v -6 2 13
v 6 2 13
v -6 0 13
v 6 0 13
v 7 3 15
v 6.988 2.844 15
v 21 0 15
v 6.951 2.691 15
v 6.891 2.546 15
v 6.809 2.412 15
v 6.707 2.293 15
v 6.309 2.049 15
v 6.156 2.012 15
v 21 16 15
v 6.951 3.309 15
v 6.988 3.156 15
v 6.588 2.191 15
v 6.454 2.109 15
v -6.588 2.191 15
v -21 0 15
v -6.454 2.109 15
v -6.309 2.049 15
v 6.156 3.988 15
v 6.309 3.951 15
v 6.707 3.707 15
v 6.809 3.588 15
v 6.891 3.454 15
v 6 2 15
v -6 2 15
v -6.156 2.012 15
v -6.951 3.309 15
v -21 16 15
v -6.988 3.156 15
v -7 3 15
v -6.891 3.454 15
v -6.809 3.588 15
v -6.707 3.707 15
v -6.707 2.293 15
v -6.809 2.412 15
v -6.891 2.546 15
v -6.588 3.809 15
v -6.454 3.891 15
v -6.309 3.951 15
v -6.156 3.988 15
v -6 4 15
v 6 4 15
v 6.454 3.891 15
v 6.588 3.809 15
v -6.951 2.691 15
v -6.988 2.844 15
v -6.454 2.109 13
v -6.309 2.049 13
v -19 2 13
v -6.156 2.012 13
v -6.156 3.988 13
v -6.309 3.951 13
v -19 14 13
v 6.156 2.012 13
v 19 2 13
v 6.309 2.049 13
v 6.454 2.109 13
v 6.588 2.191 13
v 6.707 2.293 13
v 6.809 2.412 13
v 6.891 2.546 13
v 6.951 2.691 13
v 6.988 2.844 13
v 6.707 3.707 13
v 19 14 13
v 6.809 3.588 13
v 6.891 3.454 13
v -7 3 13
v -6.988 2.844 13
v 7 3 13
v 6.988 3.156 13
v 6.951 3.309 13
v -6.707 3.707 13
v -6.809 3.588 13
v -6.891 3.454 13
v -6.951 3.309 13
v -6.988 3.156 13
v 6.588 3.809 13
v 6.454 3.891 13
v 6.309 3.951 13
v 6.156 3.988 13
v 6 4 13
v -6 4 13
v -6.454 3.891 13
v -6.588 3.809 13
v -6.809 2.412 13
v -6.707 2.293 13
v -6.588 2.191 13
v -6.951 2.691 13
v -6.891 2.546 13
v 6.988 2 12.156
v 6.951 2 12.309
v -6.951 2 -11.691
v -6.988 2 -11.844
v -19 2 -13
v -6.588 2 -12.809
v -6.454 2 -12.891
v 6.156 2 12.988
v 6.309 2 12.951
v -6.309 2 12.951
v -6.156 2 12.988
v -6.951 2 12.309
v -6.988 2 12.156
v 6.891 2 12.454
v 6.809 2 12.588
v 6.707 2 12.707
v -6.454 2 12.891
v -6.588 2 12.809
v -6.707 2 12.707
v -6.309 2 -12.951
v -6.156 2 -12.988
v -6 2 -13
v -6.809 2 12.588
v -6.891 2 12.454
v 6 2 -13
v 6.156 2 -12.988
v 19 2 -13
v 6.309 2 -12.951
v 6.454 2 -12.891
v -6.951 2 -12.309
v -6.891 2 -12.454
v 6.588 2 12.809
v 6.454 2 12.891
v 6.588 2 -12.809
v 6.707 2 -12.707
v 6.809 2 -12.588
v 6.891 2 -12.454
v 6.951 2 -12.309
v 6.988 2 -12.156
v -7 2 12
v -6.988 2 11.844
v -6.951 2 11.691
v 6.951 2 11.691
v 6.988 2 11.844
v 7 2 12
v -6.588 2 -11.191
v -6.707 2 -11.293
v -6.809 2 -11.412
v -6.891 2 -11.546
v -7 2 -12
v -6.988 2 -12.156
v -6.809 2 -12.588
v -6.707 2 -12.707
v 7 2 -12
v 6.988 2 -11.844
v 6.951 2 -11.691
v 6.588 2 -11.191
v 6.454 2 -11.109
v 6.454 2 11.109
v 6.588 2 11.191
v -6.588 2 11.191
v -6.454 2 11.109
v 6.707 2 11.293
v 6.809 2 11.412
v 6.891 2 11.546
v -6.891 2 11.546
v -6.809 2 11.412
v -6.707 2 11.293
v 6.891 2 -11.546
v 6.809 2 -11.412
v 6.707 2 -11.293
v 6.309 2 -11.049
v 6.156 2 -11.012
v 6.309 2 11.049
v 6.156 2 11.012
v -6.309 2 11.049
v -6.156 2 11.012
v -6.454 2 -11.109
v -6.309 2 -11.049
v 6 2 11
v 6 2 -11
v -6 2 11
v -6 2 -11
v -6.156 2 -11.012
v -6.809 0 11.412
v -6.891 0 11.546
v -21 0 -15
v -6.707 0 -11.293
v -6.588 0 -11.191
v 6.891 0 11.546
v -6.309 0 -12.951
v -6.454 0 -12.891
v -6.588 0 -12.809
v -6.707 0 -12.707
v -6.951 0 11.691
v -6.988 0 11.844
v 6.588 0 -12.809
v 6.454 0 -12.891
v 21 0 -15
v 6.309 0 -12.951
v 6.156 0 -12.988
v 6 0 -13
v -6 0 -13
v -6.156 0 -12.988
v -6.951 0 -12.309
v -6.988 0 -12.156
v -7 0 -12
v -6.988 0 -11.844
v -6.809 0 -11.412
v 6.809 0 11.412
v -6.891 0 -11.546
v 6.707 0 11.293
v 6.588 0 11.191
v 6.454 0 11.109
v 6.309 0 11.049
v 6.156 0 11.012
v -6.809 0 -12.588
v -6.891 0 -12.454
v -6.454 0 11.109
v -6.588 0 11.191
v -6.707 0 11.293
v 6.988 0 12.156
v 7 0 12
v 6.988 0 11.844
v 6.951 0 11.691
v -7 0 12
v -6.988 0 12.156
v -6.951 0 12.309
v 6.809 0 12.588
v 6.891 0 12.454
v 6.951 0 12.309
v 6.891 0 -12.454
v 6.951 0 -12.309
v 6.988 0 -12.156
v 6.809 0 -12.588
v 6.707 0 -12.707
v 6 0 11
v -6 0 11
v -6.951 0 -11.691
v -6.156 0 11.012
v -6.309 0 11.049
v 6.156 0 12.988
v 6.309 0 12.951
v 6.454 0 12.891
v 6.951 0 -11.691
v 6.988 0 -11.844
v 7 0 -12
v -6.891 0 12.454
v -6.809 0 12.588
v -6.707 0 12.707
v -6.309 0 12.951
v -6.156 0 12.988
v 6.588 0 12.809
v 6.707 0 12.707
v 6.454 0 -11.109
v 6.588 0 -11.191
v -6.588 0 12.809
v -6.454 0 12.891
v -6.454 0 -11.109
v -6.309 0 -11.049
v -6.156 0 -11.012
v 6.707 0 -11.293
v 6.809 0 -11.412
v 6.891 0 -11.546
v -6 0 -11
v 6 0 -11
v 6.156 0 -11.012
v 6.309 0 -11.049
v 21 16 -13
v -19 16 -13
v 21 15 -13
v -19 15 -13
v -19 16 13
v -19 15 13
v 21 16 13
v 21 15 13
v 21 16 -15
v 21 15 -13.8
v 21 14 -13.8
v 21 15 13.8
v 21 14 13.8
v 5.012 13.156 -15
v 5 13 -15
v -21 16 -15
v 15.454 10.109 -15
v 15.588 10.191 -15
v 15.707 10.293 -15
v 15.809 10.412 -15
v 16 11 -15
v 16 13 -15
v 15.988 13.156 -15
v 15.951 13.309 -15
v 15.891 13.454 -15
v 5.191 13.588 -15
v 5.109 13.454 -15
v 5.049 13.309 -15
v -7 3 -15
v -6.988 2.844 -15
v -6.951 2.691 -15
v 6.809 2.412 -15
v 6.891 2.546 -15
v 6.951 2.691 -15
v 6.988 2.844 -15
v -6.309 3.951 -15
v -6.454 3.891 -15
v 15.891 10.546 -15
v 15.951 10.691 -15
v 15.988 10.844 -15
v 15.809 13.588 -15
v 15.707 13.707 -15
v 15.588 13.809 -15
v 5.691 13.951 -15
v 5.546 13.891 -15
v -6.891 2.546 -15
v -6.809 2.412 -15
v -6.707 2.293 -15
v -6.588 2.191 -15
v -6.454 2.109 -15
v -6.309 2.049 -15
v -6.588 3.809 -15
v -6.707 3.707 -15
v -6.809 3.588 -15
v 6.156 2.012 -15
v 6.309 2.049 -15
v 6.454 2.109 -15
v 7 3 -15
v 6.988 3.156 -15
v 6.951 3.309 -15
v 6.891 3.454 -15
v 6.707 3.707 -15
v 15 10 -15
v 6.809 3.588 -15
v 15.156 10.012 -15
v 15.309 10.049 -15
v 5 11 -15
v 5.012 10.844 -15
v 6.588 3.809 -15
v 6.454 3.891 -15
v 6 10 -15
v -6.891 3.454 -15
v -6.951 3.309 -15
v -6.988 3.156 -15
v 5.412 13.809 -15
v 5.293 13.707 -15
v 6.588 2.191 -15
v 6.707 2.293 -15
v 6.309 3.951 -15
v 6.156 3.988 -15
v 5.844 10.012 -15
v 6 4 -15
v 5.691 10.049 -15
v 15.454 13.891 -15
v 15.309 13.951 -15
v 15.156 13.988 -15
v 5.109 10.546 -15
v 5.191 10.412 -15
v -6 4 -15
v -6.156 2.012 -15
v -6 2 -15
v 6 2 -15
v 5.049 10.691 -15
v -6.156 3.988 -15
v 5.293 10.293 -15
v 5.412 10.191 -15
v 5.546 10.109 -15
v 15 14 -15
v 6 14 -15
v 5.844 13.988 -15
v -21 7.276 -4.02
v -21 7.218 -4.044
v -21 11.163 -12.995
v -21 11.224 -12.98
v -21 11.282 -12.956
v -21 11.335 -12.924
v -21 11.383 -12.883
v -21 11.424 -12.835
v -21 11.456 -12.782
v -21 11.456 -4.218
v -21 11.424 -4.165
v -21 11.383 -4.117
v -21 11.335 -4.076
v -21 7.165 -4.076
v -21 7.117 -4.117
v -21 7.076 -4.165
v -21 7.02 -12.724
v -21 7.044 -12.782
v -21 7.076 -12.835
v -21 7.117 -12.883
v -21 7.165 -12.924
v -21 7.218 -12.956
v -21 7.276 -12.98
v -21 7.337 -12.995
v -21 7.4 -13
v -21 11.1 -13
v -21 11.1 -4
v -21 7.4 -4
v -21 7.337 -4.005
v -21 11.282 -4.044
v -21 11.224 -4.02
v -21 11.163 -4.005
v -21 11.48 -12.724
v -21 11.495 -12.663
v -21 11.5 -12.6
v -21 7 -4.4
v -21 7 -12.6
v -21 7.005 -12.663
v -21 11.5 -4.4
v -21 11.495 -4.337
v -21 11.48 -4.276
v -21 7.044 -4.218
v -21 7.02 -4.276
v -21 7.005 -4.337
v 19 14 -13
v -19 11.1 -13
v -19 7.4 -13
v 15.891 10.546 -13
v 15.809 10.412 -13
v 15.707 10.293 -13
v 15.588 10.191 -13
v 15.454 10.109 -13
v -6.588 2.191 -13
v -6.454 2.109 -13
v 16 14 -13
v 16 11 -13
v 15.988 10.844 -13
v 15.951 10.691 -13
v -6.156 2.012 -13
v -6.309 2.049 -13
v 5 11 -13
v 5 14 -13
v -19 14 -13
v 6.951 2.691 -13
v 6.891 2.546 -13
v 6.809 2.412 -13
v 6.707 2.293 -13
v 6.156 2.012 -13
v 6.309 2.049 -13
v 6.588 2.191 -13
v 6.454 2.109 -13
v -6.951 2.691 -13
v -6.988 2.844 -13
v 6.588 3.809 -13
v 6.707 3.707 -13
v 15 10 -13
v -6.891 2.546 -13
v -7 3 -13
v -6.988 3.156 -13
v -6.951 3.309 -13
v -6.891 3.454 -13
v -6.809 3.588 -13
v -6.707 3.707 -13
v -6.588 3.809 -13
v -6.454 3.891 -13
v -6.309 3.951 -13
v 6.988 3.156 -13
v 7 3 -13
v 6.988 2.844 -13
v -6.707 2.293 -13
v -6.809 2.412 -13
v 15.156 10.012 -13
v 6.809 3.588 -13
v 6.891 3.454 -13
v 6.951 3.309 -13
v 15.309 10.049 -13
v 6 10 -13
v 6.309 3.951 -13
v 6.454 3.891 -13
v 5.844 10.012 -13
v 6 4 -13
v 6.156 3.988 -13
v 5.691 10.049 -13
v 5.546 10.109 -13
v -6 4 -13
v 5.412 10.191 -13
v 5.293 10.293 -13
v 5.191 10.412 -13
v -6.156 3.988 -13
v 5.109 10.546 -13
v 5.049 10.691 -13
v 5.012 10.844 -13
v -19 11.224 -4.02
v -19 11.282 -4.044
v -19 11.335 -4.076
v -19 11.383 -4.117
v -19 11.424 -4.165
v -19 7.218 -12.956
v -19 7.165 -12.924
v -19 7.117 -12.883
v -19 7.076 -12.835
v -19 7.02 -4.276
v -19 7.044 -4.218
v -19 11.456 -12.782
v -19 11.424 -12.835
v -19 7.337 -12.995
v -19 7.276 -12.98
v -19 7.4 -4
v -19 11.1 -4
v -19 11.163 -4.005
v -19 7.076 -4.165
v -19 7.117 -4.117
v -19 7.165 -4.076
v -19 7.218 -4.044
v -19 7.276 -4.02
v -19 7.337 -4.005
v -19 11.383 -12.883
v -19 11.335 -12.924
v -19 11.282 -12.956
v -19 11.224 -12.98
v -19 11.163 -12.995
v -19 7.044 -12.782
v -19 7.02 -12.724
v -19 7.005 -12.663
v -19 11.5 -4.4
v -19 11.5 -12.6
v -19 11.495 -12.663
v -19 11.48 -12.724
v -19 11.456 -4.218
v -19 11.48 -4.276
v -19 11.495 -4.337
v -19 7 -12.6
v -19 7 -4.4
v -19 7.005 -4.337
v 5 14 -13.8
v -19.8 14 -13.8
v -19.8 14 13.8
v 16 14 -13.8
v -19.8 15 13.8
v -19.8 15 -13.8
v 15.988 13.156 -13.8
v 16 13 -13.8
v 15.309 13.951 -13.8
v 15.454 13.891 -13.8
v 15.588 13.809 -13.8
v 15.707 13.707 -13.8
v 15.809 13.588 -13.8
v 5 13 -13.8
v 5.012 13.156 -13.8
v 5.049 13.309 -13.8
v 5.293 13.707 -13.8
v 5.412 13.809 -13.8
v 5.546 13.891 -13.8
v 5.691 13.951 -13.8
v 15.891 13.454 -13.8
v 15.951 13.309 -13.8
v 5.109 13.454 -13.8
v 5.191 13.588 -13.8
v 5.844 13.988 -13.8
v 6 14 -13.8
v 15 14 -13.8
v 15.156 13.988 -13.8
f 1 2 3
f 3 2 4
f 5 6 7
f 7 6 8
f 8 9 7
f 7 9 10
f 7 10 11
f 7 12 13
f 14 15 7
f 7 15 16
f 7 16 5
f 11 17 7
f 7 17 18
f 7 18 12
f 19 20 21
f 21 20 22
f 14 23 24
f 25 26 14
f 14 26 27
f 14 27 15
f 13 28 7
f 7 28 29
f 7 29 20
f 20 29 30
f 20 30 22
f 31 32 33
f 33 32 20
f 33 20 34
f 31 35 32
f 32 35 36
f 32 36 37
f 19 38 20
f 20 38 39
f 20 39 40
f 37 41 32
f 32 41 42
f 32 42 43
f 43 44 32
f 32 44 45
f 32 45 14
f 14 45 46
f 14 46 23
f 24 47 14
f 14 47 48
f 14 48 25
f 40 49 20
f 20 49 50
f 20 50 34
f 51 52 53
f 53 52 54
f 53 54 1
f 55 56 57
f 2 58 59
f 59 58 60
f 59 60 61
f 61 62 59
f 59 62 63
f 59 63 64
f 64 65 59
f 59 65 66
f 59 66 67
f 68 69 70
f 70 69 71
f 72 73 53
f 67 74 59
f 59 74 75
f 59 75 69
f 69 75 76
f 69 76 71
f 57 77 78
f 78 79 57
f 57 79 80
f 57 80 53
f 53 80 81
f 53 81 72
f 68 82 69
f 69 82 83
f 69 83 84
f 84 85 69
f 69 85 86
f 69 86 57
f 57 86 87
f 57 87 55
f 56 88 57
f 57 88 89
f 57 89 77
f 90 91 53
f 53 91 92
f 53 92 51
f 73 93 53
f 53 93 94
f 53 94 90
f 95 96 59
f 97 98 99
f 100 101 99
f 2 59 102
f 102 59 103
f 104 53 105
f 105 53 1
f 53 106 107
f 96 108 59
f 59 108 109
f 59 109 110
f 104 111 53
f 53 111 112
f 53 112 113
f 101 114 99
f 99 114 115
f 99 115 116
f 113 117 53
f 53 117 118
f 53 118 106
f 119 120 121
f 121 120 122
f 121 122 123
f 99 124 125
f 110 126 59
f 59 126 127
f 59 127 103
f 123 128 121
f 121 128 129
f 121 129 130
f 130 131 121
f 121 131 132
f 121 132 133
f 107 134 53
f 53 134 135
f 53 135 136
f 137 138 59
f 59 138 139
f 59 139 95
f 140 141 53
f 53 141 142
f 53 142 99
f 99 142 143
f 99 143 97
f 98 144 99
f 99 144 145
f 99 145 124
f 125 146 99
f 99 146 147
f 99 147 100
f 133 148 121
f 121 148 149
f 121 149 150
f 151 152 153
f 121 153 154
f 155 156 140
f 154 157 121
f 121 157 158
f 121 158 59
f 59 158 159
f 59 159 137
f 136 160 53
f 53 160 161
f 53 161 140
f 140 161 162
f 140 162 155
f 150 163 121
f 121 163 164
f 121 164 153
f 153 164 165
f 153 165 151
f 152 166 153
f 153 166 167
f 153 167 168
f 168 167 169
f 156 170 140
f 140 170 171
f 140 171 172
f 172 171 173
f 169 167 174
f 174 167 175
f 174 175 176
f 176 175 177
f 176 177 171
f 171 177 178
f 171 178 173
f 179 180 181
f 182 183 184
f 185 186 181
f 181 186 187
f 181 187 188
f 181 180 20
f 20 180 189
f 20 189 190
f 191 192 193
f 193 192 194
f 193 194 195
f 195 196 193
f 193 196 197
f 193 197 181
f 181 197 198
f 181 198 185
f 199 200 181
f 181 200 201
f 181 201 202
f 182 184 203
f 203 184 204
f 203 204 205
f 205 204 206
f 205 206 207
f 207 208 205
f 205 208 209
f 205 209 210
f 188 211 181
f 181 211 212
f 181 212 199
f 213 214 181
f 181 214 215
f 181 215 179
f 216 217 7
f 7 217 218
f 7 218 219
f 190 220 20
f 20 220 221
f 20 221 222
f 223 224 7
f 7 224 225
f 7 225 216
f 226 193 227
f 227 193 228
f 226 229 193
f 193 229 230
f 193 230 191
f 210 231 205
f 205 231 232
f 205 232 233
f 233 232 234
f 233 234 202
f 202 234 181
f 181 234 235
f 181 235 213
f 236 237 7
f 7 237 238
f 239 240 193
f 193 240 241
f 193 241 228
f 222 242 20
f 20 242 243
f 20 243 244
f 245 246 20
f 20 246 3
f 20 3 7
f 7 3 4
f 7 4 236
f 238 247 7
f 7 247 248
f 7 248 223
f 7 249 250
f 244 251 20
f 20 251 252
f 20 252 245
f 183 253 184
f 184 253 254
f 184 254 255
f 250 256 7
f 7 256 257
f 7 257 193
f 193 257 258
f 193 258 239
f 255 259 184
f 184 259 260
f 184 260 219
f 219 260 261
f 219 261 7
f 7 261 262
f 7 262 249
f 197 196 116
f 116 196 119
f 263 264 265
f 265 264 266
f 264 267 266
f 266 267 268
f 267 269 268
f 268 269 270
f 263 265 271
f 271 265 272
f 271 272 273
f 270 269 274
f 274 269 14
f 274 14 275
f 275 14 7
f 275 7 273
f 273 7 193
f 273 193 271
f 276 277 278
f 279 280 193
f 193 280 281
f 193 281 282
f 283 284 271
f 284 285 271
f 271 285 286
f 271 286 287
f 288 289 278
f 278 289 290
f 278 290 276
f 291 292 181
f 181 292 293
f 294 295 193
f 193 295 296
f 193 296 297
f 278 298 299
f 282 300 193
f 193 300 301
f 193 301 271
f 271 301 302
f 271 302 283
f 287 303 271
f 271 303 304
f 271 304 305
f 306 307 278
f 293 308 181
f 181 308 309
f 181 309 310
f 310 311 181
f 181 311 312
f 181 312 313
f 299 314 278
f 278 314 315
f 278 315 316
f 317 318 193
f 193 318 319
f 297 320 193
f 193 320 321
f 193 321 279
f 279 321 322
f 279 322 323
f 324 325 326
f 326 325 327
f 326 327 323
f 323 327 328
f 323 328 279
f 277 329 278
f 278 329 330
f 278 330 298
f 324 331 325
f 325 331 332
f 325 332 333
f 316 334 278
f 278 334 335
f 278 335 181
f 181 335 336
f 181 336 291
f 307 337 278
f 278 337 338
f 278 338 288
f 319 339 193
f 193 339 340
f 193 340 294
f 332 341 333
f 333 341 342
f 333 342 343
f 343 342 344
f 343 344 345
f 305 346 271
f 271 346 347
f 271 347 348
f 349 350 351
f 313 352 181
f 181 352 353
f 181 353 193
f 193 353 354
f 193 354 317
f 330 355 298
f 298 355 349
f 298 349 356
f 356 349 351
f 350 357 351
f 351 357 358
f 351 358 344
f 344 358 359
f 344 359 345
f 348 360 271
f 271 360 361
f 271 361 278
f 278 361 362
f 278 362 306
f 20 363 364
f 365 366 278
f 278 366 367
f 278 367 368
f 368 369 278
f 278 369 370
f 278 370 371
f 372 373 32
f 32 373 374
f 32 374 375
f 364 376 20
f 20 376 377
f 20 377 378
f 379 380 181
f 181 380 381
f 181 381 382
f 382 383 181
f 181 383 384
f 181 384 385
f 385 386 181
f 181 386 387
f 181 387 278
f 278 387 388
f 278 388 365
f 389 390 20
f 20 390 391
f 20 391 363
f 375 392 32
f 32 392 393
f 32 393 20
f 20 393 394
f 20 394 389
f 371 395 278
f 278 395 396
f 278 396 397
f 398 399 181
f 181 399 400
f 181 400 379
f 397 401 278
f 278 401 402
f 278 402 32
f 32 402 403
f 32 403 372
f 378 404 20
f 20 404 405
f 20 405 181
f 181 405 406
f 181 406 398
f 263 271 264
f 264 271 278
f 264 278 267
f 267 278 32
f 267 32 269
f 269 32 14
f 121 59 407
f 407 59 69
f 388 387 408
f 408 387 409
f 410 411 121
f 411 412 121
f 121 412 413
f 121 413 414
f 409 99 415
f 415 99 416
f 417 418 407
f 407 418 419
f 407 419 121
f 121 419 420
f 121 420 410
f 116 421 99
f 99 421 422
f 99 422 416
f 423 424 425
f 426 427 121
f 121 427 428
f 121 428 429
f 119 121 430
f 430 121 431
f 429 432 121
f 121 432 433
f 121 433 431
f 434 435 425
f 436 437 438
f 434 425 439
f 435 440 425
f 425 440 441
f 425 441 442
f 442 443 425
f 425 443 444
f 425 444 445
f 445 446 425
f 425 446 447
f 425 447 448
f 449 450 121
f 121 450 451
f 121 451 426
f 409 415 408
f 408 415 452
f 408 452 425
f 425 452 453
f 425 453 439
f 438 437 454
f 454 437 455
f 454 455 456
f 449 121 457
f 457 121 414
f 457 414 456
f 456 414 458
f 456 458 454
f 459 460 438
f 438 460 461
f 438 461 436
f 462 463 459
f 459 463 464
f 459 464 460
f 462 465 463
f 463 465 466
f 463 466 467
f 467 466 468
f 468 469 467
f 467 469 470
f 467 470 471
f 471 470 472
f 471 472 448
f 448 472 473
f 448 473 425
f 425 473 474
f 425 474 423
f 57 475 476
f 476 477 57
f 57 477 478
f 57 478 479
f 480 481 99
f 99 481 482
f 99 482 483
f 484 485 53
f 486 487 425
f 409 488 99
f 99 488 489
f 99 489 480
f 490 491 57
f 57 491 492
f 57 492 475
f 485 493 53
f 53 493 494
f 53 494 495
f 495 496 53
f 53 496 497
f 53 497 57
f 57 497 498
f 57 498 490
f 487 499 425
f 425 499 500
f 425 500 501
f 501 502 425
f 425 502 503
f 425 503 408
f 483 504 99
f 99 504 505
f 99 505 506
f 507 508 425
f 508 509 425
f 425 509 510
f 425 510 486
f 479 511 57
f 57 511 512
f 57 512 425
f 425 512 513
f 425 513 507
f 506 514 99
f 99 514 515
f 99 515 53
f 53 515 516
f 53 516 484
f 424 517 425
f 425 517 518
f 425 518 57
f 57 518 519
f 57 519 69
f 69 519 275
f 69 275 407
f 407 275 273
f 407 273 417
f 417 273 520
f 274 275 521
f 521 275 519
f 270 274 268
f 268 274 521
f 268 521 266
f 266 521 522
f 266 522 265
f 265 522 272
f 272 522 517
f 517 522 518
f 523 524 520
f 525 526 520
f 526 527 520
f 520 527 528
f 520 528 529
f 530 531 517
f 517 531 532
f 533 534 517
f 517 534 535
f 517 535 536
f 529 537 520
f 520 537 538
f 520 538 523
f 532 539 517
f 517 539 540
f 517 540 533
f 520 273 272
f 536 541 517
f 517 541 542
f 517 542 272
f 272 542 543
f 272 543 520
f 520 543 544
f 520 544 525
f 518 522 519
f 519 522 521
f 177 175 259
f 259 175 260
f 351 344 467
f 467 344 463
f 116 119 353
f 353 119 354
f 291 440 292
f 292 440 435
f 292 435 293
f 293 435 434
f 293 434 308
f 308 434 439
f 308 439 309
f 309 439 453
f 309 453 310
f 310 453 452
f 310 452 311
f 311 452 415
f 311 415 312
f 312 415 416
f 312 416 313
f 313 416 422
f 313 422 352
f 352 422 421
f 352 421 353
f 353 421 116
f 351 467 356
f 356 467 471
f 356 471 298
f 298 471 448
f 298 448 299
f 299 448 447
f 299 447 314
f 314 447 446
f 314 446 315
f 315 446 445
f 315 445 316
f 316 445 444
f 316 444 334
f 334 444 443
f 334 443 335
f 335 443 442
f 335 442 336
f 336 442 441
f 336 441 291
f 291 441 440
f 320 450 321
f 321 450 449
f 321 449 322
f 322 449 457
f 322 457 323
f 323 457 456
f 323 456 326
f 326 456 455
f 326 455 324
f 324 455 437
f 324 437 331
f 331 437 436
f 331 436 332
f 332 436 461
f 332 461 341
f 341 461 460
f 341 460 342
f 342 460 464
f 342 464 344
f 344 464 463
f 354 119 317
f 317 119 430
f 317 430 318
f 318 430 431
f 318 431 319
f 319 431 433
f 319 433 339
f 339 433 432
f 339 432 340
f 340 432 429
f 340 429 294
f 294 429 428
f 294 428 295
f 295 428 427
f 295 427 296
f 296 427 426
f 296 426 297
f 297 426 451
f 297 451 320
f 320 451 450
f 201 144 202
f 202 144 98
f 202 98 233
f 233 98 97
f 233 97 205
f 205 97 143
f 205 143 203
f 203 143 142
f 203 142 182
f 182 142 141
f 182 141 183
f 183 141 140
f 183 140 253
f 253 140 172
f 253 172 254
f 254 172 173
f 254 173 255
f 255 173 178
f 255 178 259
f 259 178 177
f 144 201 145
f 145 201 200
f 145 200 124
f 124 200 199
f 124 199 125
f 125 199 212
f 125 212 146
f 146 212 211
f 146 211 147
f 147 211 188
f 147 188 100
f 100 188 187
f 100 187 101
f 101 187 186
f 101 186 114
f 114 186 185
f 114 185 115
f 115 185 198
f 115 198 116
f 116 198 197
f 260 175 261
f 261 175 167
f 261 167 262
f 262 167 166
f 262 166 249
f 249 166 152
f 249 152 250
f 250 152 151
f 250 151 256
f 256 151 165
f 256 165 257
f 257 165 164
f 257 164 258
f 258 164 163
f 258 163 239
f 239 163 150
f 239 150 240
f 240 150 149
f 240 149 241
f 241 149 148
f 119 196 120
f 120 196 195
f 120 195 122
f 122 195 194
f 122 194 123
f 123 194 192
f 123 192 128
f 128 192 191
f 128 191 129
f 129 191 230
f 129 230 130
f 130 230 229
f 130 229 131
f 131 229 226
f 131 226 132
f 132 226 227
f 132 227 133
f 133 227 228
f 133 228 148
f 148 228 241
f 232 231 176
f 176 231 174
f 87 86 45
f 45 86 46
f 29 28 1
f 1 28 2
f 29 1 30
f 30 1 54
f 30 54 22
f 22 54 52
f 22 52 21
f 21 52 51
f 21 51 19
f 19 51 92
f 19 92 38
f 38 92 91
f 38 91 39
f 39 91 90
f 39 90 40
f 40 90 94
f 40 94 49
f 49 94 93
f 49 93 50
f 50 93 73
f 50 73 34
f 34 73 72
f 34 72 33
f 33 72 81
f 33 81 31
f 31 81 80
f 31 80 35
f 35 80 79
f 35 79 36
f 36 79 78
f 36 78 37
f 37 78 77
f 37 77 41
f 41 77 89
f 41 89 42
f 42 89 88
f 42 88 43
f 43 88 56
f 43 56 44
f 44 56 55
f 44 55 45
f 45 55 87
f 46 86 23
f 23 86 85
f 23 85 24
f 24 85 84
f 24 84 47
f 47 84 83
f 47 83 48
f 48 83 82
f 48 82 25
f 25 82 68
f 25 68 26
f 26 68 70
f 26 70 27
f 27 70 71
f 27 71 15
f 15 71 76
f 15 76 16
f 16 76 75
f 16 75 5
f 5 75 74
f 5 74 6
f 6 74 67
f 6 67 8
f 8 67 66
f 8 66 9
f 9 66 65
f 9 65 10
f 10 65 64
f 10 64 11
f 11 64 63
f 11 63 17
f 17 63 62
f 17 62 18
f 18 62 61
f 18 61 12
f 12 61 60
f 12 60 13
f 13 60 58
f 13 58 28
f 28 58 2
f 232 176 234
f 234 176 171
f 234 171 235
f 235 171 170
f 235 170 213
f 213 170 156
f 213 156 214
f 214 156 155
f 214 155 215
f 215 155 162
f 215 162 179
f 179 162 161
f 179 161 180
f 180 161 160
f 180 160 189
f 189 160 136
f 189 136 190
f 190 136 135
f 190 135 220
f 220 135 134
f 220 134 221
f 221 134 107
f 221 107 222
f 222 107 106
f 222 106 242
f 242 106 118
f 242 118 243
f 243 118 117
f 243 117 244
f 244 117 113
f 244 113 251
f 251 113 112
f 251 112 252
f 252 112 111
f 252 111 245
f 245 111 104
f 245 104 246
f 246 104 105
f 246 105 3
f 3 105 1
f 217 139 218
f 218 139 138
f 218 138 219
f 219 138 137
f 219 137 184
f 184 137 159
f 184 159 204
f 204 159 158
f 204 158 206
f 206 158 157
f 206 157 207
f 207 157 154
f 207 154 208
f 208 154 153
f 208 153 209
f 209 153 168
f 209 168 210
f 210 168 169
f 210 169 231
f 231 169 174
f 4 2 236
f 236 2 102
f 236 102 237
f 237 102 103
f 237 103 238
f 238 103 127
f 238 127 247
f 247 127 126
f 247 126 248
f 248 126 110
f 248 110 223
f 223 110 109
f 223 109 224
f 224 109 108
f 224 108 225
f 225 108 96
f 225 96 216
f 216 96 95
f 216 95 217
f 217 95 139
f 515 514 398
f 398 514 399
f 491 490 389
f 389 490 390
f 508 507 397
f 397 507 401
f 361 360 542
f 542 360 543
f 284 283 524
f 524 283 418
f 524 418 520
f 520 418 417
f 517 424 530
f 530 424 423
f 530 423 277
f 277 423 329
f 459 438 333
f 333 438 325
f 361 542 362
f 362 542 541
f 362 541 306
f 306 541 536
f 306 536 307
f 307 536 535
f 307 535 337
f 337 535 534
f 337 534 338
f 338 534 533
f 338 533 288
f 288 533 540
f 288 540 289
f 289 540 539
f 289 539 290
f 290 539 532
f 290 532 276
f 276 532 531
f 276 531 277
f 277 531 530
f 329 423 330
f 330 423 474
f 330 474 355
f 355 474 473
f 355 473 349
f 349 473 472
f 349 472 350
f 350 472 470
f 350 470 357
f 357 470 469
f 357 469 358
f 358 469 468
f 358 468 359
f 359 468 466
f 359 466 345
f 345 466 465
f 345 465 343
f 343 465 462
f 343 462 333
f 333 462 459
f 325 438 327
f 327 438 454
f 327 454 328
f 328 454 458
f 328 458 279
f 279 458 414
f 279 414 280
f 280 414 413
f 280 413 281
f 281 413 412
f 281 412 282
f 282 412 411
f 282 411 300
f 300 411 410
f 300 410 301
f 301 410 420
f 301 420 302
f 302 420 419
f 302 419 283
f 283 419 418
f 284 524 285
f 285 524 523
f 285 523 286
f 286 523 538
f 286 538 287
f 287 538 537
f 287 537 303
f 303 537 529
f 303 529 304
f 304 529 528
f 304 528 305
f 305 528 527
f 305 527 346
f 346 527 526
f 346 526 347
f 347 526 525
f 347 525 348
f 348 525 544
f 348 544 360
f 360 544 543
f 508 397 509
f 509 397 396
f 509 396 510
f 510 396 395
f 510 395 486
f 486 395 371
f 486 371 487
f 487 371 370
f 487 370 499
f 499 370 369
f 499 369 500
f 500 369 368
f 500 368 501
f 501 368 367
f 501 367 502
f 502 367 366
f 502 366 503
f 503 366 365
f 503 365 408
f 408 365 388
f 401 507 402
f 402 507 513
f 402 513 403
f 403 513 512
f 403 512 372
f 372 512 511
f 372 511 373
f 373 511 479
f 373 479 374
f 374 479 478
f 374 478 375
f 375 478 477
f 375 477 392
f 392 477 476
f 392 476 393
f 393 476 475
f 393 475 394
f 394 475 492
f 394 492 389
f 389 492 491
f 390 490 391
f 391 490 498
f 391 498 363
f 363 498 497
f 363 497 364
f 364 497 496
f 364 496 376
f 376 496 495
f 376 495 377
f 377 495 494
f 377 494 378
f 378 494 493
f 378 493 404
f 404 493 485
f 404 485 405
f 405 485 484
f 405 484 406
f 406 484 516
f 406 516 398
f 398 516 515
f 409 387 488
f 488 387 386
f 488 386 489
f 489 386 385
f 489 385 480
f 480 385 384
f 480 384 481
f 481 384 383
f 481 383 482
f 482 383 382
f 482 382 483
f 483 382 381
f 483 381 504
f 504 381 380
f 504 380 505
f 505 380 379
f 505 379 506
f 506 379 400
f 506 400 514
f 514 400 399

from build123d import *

# Parameters (mm, degrees)
SKETCH_1_W             = 42
SKETCH_1_H             = 30
EXTRUDE_1_DEPTH        = 16
SHELL_1_T              = -2
CUT_EXTRUDE_3_REACH    = 49.381
SKETCH_4_W             = 26
SKETCH_4_H             = 2
SKETCH_5_W             = 27.6
SKETCH_5_H             = 1
CUT_EXTRUDE_4_DEPTH    = 40.8
CUT_EXTRUDE_6_REACH    = 32.364
SKETCH_8_W             = 14
SKETCH_8_H             = 2
CUT_EXTRUDE_7_REACH    = 41.962
SKETCH_9_W             = 14
SKETCH_9_H             = 2
FILLET_3_R             = 1
FILLET_4_R             = 1
FILLET_3_OF_MIRROR_1_R = 1
FILLET_4_OF_MIRROR_1_R = 1
CUT_EXTRUDE_8_REACH    = 49.381
SKETCH_10_W            = 9
SKETCH_10_H            = 4.5
CUT_EXTRUDE_9_REACH    = 41.962
SKETCH_11_W            = 11
SKETCH_11_H            = 4
FILLET_5_R             = 1
FILLET_6_R             = 0.4


# Some blends are built 0.0001 mm under size
with BuildPart() as part:
    # 草图1 → 凸台-拉伸1 (new body)
    with BuildSketch(Plane(origin=(0, 0, 0), x_dir=(1, 0, 0), z_dir=(0, 1, 0))):
        Rectangle(SKETCH_1_W, SKETCH_1_H)
    extrude(amount=EXTRUDE_1_DEPTH)

    # 抽壳1
    shell_1_openings = [part.faces().sort_by_distance(p)[0] for p in [
        (0, 16, 0),
    ]]
    offset(amount=SHELL_1_T, openings=shell_1_openings, kind=Kind.INTERSECTION)

    # 草图4 → 切除-拉伸3 (cut, up to next)
    with BuildSketch(Plane(origin=(21, 0, 0), x_dir=(0, 0, -1), z_dir=(1, 0, 0)), mode=Mode.PRIVATE) as cut_extrude_3_sk1:
        with Locations((0, 15)):
            Rectangle(SKETCH_4_W, SKETCH_4_H)
    cut_extrude_3_tool1 = extrude(cut_extrude_3_sk1.sketch, amount=-CUT_EXTRUDE_3_REACH, mode=Mode.PRIVATE) & part.part
    add(cut_extrude_3_tool1.solids().sort_by_distance((21, 15, 0))[0], mode=Mode.SUBTRACT)

    # 草图5 → 切除-拉伸4 (cut)
    with BuildSketch(Plane(origin=(21, 0, 0), x_dir=(0, 0, -1), z_dir=(1, 0, 0))):
        with Locations((0, 14.5)):
            Rectangle(SKETCH_5_W, SKETCH_5_H)
    extrude(amount=-CUT_EXTRUDE_4_DEPTH, mode=Mode.SUBTRACT)

    # 草图8 → 切除-拉伸6 (cut, up to next)
    with BuildSketch(Plane.XZ, mode=Mode.PRIVATE) as cut_extrude_6_sk1:
        with Locations((0, -12)):
            Rectangle(SKETCH_8_W, SKETCH_8_H)
    cut_extrude_6_tool1 = extrude(cut_extrude_6_sk1.sketch, amount=-CUT_EXTRUDE_6_REACH, mode=Mode.PRIVATE) & part.part
    cut_extrude_6 = cut_extrude_6_tool1.solids().sort_by_distance((0, 0, -12))[0]
    add(cut_extrude_6, mode=Mode.SUBTRACT)

    # 草图9 → 切除-拉伸7 (cut, up to next)
    with BuildSketch(Plane(origin=(0, 0, -15), x_dir=(-1, 0, 0), z_dir=(0, 0, -1)), mode=Mode.PRIVATE) as cut_extrude_7_sk1:
        with Locations((0, 3)):
            Rectangle(SKETCH_9_W, SKETCH_9_H)
    cut_extrude_7_tool1 = extrude(cut_extrude_7_sk1.sketch, amount=-CUT_EXTRUDE_7_REACH, mode=Mode.PRIVATE) & part.part
    cut_extrude_7 = cut_extrude_7_tool1.solids().sort_by_distance((0, 3, -15))[0]
    add(cut_extrude_7, mode=Mode.SUBTRACT)

    # 圆角3
    # the kernel refuses this fillet: 1 mm, written as the material it adds along each edge
    with BuildSketch(Plane(origin=(-7, 4, -15), x_dir=(0, -1, 0), z_dir=(0, 0, 1)), Plane(origin=(-7, 2, -15), x_dir=(1, 0, 0), z_dir=(0, 0, 1)), Plane(origin=(7, 2, -15), x_dir=(0, 1, 0), z_dir=(0, 0, 1))) as fillet_3_piece_1:
        with BuildLine():
            CenterArc((FILLET_3_R, FILLET_3_R), FILLET_3_R, 180, 90)
            Line((0, FILLET_3_R), (0, 0))
            Line((0, 0), (FILLET_3_R, 0))
        make_face()
    extrude(amount=2)
    with BuildSketch(Plane(origin=(7, 4, -15), x_dir=(0, -1, 0), z_dir=(0, 0, 1))) as fillet_3_piece_2:
        with BuildLine():
            CenterArc((FILLET_3_R, -FILLET_3_R), FILLET_3_R, 90, 90)
            Line((0, -FILLET_3_R), (0, 0))
            Line((0, 0), (FILLET_3_R, 0))
        make_face()
    extrude(amount=2)

    # 圆角4
    fillet_4_edges = [part.edges().sort_by_distance(p)[0] for p in [
        (-7, 1, -13),
        (-7, 1, -11),
        (7, 1, -13),
        (7, 1, -11),
    ]]
    fillet(fillet_4_edges, radius=FILLET_4_R - 0.0001)  # a hair under: the kernel refuses the full size

    # 镜向1: 切除-拉伸6, 切除-拉伸7 across plane
    add(cut_extrude_6.mirror(Plane.XY), mode=Mode.SUBTRACT)
    add(cut_extrude_7.mirror(Plane.XY), mode=Mode.SUBTRACT)

    # 圆角3 of 镜向1
    # the kernel refuses this fillet: 1 mm, written as the material it adds along each edge
    with BuildSketch(Plane(origin=(-7, 4, 15), x_dir=(1, 0, 0), z_dir=(0, 0, -1)), Plane(origin=(-7, 2, 15), x_dir=(0, 1, 0), z_dir=(0, 0, -1)), Plane(origin=(7, 2, 15), x_dir=(-1, 0, 0), z_dir=(0, 0, -1))) as fillet_3_of_mirror_1_piece_1:
        with BuildLine():
            CenterArc((FILLET_3_OF_MIRROR_1_R, FILLET_3_OF_MIRROR_1_R), FILLET_3_OF_MIRROR_1_R, 180, 90)
            Line((0, FILLET_3_OF_MIRROR_1_R), (0, 0))
            Line((0, 0), (FILLET_3_OF_MIRROR_1_R, 0))
        make_face()
    extrude(amount=2)
    with BuildSketch(Plane(origin=(7, 4, 15), x_dir=(-1, 0, 0), z_dir=(0, 0, -1))) as fillet_3_of_mirror_1_piece_2:
        with BuildLine():
            CenterArc((FILLET_3_OF_MIRROR_1_R, -FILLET_3_OF_MIRROR_1_R), FILLET_3_OF_MIRROR_1_R, 90, 90)
            Line((0, -FILLET_3_OF_MIRROR_1_R), (0, 0))
            Line((0, 0), (FILLET_3_OF_MIRROR_1_R, 0))
        make_face()
    extrude(amount=2)

    # 圆角4 of 镜向1
    fillet_4_of_mirror_1_edges = [part.edges().sort_by_distance(p)[0] for p in [
        (-7, 1, 13),
        (-7, 1, 11),
        (7, 1, 13),
        (7, 1, 11),
    ]]
    fillet(fillet_4_of_mirror_1_edges, radius=FILLET_4_OF_MIRROR_1_R - 0.0001)  # a hair under: the kernel refuses the full size

    # 草图10 → 切除-拉伸8 (cut, up to next)
    with BuildSketch(Plane.ZY.offset(21), mode=Mode.PRIVATE) as cut_extrude_8_sk1:
        with Locations((-8.5, 9.25)):
            Rectangle(SKETCH_10_W, SKETCH_10_H)
    cut_extrude_8_tool1 = extrude(cut_extrude_8_sk1.sketch, amount=-CUT_EXTRUDE_8_REACH, mode=Mode.PRIVATE) & part.part
    add(cut_extrude_8_tool1.solids().sort_by_distance((-21, 9.25, -8.5))[0], mode=Mode.SUBTRACT)

    # 草图11 → 切除-拉伸9 (cut, up to next)
    with BuildSketch(Plane(origin=(0, 0, -15), x_dir=(-1, 0, 0), z_dir=(0, 0, -1)), mode=Mode.PRIVATE) as cut_extrude_9_sk1:
        with Locations((-10.5, 12)):
            Rectangle(SKETCH_11_W, SKETCH_11_H)
    cut_extrude_9_tool1 = extrude(cut_extrude_9_sk1.sketch, amount=-CUT_EXTRUDE_9_REACH, mode=Mode.PRIVATE) & part.part
    add(cut_extrude_9_tool1.solids().sort_by_distance((10.5, 12, -15))[0], mode=Mode.SUBTRACT)

    # 圆角5
    fillet_5_edges = [part.edges().sort_by_distance(p)[0] for p in [
        (16, 14, -14.4),
        (16, 10, -14),
        (5, 14, -14.4),
        (5, 10, -14),
    ]]
    fillet(fillet_5_edges, radius=FILLET_5_R)

    # 圆角6
    fillet_6_edges = [part.edges().sort_by_distance(p)[0] for p in [
        (-20, 7, -4),
        (-20, 11.5, -4),
        (-20, 11.5, -13),
        (-20, 7, -13),
    ]]
    fillet(fillet_6_edges, radius=FILLET_6_R)


solid = part.part
